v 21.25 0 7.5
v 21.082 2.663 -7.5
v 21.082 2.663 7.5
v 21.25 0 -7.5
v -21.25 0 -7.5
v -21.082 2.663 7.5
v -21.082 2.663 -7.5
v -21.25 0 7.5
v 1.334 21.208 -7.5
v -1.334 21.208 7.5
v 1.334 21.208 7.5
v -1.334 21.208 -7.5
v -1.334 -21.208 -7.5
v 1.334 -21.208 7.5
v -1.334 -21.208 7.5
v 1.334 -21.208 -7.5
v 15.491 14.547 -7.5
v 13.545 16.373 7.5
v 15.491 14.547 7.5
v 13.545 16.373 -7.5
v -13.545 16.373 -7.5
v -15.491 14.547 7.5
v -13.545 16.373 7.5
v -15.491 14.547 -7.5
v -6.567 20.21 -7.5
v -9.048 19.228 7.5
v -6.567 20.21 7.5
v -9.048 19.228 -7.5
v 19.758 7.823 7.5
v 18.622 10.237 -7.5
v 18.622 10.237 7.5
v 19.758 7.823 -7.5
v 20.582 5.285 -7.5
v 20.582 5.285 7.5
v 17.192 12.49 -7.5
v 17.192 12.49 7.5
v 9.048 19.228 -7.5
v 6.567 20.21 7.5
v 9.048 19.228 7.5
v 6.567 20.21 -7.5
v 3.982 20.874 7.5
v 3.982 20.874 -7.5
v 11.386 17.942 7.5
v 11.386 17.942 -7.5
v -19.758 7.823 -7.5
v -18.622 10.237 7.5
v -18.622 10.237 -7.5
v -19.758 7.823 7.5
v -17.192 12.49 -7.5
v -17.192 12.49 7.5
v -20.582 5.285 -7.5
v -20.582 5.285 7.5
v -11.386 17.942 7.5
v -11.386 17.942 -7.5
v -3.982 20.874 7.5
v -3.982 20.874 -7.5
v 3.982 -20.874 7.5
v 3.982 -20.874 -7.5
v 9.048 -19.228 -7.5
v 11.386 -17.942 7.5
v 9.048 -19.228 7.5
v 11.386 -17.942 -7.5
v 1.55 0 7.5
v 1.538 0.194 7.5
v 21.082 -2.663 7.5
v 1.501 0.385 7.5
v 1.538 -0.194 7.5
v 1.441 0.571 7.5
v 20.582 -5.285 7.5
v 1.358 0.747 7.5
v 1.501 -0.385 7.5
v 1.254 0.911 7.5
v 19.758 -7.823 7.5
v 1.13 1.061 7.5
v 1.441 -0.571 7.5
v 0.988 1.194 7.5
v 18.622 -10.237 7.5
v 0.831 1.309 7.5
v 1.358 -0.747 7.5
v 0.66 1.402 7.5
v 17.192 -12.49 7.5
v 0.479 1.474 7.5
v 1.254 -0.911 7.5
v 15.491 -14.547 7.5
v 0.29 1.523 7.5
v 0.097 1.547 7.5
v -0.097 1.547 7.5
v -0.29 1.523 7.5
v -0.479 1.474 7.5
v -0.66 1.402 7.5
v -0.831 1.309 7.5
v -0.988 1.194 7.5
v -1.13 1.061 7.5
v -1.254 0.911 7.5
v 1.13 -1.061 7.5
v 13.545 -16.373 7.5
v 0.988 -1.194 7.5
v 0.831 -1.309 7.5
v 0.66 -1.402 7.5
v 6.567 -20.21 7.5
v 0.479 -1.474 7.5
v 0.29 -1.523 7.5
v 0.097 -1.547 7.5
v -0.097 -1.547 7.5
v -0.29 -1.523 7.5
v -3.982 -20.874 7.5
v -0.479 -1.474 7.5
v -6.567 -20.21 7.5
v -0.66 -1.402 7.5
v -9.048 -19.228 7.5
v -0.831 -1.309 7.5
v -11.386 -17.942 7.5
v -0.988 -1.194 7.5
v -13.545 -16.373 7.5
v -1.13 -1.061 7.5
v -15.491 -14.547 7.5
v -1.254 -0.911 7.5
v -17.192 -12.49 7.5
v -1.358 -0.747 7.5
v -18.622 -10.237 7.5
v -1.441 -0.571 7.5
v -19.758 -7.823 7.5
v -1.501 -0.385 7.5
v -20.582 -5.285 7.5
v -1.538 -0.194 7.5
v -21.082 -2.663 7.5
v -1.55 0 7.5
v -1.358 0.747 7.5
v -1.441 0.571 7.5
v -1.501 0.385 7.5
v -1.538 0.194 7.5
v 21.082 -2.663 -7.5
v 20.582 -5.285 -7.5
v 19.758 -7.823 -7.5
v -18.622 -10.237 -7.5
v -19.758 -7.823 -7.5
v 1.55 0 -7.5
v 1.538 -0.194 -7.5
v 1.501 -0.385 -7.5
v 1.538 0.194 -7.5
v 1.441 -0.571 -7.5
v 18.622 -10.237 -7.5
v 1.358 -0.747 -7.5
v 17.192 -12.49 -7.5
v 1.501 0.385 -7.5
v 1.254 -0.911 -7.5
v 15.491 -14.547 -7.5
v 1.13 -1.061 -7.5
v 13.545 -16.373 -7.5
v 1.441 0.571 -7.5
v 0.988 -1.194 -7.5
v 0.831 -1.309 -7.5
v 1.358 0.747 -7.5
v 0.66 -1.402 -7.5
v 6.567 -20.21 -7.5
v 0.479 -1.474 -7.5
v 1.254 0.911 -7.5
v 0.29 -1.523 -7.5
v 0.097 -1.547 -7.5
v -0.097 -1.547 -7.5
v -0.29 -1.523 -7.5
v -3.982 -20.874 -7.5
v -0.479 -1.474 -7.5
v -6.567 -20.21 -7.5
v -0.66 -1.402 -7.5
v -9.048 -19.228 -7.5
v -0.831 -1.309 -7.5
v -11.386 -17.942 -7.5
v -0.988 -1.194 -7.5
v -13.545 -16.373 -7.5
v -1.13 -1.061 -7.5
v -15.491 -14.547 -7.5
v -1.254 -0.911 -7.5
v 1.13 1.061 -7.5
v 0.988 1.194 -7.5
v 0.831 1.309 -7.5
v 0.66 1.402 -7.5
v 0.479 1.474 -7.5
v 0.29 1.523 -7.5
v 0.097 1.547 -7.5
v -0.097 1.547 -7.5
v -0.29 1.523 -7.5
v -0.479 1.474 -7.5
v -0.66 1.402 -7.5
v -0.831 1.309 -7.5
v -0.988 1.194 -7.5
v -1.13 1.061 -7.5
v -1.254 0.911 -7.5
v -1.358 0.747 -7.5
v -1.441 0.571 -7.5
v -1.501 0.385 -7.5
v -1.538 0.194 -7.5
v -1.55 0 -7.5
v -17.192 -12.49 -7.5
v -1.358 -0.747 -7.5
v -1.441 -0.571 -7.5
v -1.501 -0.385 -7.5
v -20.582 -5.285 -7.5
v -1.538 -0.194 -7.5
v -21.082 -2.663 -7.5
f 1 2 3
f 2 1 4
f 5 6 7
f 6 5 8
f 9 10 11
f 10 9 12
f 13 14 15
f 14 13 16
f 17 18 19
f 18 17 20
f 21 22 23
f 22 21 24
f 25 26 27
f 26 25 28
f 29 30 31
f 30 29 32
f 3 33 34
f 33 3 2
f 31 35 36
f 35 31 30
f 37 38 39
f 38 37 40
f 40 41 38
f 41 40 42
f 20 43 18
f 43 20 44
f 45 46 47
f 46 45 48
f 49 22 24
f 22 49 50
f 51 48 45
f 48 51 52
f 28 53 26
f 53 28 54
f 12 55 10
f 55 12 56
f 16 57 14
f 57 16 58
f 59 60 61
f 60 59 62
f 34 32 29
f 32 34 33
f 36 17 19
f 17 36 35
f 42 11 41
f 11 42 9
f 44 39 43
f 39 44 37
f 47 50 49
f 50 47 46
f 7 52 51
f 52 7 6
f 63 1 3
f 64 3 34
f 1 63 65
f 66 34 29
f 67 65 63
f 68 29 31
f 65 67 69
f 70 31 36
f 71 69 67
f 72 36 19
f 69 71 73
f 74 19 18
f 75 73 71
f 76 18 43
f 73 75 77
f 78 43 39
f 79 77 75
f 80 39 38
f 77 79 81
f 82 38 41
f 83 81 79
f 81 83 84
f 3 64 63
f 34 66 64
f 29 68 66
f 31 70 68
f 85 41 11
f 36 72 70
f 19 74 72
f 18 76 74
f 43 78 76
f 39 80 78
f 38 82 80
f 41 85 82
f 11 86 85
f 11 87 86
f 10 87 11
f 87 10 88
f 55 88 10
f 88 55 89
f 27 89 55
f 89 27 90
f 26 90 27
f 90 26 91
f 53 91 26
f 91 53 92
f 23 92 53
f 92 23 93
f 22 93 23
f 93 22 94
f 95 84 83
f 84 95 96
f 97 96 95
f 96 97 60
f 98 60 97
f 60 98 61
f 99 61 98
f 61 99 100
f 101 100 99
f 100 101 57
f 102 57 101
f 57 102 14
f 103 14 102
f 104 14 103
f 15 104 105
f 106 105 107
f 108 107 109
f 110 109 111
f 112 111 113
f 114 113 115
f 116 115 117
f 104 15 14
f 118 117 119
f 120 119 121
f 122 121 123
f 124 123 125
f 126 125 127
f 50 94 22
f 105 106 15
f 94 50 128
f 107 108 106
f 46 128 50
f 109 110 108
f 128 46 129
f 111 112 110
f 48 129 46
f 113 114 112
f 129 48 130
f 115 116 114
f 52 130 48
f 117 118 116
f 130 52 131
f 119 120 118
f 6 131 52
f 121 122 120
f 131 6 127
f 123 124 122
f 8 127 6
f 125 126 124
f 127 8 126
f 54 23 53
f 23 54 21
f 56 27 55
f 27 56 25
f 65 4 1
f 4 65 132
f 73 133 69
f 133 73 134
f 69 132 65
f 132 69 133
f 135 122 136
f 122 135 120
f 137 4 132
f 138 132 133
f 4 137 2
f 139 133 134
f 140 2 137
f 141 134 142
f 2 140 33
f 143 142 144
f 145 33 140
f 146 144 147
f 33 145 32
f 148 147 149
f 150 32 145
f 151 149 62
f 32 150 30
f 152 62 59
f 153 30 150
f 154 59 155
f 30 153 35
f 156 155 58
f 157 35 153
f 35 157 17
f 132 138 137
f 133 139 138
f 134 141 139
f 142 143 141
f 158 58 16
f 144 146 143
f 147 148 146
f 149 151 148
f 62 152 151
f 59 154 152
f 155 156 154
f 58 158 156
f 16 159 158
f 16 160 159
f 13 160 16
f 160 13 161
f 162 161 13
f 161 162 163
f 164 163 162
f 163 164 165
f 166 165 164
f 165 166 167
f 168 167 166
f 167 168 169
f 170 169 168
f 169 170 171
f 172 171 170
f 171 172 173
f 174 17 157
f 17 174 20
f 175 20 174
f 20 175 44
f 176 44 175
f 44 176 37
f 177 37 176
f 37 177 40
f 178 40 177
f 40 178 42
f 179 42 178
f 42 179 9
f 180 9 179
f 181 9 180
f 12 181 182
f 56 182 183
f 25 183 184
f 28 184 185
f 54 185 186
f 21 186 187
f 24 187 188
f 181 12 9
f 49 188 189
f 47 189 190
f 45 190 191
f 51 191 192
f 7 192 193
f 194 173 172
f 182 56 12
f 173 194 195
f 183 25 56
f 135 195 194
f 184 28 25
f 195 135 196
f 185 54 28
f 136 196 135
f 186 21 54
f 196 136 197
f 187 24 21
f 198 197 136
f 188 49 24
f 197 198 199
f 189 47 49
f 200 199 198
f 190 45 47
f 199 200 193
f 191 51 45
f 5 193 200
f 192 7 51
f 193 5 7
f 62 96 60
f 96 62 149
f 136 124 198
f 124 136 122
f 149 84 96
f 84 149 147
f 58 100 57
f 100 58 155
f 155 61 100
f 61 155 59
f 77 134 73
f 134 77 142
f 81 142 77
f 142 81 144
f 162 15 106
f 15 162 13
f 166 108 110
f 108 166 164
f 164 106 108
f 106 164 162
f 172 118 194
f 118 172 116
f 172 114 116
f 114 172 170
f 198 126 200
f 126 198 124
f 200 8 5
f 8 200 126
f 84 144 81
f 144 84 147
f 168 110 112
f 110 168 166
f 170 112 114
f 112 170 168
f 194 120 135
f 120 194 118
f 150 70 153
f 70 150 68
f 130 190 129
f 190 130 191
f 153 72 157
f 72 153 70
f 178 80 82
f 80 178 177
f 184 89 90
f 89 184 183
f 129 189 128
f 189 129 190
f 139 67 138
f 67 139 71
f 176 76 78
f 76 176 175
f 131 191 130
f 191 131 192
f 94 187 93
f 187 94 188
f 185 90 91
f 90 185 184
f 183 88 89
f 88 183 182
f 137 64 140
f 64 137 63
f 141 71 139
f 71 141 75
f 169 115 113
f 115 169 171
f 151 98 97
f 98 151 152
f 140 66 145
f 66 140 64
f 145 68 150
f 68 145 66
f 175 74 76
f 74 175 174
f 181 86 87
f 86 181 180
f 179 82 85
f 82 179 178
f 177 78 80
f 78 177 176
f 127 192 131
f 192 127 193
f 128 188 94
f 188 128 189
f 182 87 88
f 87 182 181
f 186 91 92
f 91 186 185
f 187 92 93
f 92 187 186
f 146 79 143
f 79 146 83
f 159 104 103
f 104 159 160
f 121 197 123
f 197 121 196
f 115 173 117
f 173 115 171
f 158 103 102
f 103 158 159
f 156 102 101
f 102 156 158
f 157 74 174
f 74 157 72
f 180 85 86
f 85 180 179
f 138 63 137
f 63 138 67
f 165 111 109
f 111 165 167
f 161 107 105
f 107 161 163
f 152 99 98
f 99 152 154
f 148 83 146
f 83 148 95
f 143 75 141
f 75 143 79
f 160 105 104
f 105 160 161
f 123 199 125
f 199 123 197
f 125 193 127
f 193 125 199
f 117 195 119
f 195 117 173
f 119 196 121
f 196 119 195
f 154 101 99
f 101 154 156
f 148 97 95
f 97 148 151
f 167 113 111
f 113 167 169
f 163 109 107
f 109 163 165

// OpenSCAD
$fn = 50;


difference() {
	union() {
		translate(v = [0, 0, -7.5000000000]) {
			cylinder(h = 15, r = 21.2500000000);
		}
	}
	union() {
		translate(v = [0, 0, -100.0000000000]) {
			cylinder(h = 200, r = 1.5500000000);
		}
	}
}
